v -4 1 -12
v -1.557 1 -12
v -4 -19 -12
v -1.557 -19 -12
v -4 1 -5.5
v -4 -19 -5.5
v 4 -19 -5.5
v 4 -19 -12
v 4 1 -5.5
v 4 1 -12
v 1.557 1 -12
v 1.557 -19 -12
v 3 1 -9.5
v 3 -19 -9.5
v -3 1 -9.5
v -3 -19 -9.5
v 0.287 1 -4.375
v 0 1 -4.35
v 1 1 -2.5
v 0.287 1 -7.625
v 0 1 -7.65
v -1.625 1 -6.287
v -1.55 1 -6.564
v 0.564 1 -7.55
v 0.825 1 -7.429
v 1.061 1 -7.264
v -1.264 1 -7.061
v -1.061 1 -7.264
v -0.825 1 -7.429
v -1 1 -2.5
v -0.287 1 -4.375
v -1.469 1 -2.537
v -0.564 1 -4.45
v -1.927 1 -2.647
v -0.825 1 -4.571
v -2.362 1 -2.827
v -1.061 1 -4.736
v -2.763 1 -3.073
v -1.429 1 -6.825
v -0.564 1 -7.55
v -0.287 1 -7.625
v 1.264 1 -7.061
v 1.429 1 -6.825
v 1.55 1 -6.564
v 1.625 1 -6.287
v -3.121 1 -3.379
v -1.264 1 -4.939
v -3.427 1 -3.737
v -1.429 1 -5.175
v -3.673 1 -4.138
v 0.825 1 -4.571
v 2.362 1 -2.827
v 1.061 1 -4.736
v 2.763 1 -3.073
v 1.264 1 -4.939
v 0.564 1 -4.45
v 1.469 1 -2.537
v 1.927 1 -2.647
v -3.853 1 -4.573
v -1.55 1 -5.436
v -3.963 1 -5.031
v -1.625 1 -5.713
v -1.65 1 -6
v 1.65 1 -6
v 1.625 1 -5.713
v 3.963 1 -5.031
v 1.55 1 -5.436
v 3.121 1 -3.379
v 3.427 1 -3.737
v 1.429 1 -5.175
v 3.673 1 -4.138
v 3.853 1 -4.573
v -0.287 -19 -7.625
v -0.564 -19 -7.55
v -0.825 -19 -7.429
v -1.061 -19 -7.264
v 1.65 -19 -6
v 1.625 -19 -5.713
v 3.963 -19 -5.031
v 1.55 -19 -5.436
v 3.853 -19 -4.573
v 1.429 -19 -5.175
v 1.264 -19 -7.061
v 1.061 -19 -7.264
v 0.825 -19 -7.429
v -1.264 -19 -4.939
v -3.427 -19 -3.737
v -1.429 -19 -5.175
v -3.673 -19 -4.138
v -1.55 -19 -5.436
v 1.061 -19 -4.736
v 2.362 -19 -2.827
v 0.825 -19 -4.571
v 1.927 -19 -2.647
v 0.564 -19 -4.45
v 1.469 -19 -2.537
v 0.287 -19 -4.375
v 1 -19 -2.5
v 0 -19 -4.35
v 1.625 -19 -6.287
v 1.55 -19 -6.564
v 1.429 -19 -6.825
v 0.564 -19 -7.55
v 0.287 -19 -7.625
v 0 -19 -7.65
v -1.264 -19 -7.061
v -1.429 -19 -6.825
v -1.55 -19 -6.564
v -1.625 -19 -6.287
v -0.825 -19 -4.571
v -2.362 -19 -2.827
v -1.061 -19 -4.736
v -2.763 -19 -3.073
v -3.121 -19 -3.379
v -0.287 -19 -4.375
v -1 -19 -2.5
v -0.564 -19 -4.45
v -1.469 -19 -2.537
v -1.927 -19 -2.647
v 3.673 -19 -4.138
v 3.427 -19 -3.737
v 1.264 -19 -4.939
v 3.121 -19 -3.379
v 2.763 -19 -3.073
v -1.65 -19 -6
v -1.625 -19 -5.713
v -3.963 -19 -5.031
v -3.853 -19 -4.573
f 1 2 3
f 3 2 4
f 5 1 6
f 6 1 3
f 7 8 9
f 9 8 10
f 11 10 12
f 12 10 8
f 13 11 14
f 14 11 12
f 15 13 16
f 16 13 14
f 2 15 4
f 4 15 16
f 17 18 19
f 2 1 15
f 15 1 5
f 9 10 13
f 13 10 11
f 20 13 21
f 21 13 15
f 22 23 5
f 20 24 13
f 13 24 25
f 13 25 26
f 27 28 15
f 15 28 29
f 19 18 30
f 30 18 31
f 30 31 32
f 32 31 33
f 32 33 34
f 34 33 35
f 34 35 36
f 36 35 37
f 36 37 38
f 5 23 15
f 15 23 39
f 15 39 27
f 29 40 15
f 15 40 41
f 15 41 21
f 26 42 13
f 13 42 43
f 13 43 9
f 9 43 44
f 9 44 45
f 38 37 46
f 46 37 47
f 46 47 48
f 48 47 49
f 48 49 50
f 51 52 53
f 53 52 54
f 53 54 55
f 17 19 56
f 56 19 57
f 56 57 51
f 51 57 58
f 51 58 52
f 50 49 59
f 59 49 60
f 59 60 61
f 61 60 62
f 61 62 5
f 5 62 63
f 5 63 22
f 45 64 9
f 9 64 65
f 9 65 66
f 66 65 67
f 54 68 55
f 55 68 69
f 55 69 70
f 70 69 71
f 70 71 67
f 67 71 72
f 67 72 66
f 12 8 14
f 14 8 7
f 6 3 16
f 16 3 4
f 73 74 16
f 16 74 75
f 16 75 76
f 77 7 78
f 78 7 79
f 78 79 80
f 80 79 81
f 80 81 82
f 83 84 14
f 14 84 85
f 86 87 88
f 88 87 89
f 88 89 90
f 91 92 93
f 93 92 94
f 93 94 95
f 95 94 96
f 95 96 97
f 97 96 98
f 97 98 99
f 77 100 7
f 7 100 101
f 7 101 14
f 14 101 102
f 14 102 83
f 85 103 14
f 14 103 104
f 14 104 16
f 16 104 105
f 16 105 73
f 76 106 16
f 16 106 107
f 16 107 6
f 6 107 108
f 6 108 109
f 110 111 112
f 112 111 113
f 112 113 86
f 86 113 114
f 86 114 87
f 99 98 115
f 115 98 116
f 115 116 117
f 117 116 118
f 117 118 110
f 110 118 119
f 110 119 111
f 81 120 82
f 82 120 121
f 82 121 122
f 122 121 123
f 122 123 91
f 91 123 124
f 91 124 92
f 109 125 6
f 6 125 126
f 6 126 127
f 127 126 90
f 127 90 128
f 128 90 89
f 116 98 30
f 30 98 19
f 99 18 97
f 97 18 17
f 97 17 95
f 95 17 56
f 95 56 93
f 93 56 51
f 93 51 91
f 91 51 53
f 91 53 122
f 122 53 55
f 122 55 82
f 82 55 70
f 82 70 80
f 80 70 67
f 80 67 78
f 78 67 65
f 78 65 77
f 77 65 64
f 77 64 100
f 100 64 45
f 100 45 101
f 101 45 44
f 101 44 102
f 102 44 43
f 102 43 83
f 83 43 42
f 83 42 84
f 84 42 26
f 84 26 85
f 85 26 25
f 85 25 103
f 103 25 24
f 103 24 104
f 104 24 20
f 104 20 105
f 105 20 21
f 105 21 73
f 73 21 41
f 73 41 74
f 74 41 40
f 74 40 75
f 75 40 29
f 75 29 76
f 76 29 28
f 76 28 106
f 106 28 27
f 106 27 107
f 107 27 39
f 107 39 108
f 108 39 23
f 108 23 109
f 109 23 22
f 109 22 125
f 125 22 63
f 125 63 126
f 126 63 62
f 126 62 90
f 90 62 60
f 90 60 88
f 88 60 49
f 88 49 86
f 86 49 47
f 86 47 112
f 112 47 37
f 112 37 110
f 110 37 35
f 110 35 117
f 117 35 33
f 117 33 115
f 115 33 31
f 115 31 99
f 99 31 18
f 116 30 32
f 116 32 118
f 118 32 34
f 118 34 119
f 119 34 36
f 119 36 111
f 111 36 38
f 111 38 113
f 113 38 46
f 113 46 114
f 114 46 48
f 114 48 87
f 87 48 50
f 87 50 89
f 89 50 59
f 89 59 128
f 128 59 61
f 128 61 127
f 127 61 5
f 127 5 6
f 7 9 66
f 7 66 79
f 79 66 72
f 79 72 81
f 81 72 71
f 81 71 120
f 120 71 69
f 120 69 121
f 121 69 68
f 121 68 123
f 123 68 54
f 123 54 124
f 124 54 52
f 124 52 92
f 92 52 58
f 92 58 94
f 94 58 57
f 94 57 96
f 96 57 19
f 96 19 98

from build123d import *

# Parameters (mm, degrees)
UPPER_23_W                      = 2.5
UPPER_23_H                      = 1
BOSS_EXTRUDE9_DEPTH             = 20
SKETCH50_W                      = 8
SKETCH50_H                      = 20
BOSS_EXTRUDE10_DEPTH            = 6
TAP_DRILL_FOR_M4X0_7_TAP2_D     = 3.3
TAP_DRILL_FOR_M4X0_7_TAP2_DEPTH = 20
FILLET1_R                       = 3


with BuildPart() as part:
    # upper_23 → Boss-Extrude9 (new body)
    with BuildSketch(Plane(origin=(0, -19, 0), x_dir=(1, 0, 0), z_dir=(0, 1, 0))):
        Polygon((-4, 12), (-4, 9.5), (-3, 9.5), (-1.556624327, 12), align=None)
        Polygon((-3, 9.5), (-4, 9.5), (-4, 8.5), (-1.25, 8.5), (-1.25, 9.5), (-2.5, 9.5), align=None)
        with Locations((0, 9)):
            Rectangle(UPPER_23_W, UPPER_23_H)
        Polygon((4, 8.5), (4, 9.5), (3, 9.5), (2.5, 9.5), (1.25, 9.5), (1.25, 8.5), align=None)
        Polygon((3, 9.5), (4, 9.5), (4, 12), (1.556624327, 12), align=None)
    extrude(amount=BOSS_EXTRUDE9_DEPTH)

    # Sketch50 → Boss-Extrude10 (add)
    with BuildSketch(Plane.XY.offset(-8.5)):
        with Locations((0, -9)):
            Rectangle(SKETCH50_W, SKETCH50_H)
    extrude(amount=BOSS_EXTRUDE10_DEPTH)

    # Tap Drill for M4x0.7 Tap2
    with Locations(Plane(origin=(0, 1, 0), x_dir=(1, 0, 0), z_dir=(0, 1, 0))):
        with Locations((0, 6)):
            Hole(TAP_DRILL_FOR_M4X0_7_TAP2_D / 2, depth=TAP_DRILL_FOR_M4X0_7_TAP2_DEPTH)

    # Fillet1
    fillet1_edges = [part.edges().sort_by_distance(p)[0] for p in [
        (-4, -9, -2.5),
        (4, -9, -2.5),
    ]]
    fillet(fillet1_edges, radius=FILLET1_R)


solid = part.part
